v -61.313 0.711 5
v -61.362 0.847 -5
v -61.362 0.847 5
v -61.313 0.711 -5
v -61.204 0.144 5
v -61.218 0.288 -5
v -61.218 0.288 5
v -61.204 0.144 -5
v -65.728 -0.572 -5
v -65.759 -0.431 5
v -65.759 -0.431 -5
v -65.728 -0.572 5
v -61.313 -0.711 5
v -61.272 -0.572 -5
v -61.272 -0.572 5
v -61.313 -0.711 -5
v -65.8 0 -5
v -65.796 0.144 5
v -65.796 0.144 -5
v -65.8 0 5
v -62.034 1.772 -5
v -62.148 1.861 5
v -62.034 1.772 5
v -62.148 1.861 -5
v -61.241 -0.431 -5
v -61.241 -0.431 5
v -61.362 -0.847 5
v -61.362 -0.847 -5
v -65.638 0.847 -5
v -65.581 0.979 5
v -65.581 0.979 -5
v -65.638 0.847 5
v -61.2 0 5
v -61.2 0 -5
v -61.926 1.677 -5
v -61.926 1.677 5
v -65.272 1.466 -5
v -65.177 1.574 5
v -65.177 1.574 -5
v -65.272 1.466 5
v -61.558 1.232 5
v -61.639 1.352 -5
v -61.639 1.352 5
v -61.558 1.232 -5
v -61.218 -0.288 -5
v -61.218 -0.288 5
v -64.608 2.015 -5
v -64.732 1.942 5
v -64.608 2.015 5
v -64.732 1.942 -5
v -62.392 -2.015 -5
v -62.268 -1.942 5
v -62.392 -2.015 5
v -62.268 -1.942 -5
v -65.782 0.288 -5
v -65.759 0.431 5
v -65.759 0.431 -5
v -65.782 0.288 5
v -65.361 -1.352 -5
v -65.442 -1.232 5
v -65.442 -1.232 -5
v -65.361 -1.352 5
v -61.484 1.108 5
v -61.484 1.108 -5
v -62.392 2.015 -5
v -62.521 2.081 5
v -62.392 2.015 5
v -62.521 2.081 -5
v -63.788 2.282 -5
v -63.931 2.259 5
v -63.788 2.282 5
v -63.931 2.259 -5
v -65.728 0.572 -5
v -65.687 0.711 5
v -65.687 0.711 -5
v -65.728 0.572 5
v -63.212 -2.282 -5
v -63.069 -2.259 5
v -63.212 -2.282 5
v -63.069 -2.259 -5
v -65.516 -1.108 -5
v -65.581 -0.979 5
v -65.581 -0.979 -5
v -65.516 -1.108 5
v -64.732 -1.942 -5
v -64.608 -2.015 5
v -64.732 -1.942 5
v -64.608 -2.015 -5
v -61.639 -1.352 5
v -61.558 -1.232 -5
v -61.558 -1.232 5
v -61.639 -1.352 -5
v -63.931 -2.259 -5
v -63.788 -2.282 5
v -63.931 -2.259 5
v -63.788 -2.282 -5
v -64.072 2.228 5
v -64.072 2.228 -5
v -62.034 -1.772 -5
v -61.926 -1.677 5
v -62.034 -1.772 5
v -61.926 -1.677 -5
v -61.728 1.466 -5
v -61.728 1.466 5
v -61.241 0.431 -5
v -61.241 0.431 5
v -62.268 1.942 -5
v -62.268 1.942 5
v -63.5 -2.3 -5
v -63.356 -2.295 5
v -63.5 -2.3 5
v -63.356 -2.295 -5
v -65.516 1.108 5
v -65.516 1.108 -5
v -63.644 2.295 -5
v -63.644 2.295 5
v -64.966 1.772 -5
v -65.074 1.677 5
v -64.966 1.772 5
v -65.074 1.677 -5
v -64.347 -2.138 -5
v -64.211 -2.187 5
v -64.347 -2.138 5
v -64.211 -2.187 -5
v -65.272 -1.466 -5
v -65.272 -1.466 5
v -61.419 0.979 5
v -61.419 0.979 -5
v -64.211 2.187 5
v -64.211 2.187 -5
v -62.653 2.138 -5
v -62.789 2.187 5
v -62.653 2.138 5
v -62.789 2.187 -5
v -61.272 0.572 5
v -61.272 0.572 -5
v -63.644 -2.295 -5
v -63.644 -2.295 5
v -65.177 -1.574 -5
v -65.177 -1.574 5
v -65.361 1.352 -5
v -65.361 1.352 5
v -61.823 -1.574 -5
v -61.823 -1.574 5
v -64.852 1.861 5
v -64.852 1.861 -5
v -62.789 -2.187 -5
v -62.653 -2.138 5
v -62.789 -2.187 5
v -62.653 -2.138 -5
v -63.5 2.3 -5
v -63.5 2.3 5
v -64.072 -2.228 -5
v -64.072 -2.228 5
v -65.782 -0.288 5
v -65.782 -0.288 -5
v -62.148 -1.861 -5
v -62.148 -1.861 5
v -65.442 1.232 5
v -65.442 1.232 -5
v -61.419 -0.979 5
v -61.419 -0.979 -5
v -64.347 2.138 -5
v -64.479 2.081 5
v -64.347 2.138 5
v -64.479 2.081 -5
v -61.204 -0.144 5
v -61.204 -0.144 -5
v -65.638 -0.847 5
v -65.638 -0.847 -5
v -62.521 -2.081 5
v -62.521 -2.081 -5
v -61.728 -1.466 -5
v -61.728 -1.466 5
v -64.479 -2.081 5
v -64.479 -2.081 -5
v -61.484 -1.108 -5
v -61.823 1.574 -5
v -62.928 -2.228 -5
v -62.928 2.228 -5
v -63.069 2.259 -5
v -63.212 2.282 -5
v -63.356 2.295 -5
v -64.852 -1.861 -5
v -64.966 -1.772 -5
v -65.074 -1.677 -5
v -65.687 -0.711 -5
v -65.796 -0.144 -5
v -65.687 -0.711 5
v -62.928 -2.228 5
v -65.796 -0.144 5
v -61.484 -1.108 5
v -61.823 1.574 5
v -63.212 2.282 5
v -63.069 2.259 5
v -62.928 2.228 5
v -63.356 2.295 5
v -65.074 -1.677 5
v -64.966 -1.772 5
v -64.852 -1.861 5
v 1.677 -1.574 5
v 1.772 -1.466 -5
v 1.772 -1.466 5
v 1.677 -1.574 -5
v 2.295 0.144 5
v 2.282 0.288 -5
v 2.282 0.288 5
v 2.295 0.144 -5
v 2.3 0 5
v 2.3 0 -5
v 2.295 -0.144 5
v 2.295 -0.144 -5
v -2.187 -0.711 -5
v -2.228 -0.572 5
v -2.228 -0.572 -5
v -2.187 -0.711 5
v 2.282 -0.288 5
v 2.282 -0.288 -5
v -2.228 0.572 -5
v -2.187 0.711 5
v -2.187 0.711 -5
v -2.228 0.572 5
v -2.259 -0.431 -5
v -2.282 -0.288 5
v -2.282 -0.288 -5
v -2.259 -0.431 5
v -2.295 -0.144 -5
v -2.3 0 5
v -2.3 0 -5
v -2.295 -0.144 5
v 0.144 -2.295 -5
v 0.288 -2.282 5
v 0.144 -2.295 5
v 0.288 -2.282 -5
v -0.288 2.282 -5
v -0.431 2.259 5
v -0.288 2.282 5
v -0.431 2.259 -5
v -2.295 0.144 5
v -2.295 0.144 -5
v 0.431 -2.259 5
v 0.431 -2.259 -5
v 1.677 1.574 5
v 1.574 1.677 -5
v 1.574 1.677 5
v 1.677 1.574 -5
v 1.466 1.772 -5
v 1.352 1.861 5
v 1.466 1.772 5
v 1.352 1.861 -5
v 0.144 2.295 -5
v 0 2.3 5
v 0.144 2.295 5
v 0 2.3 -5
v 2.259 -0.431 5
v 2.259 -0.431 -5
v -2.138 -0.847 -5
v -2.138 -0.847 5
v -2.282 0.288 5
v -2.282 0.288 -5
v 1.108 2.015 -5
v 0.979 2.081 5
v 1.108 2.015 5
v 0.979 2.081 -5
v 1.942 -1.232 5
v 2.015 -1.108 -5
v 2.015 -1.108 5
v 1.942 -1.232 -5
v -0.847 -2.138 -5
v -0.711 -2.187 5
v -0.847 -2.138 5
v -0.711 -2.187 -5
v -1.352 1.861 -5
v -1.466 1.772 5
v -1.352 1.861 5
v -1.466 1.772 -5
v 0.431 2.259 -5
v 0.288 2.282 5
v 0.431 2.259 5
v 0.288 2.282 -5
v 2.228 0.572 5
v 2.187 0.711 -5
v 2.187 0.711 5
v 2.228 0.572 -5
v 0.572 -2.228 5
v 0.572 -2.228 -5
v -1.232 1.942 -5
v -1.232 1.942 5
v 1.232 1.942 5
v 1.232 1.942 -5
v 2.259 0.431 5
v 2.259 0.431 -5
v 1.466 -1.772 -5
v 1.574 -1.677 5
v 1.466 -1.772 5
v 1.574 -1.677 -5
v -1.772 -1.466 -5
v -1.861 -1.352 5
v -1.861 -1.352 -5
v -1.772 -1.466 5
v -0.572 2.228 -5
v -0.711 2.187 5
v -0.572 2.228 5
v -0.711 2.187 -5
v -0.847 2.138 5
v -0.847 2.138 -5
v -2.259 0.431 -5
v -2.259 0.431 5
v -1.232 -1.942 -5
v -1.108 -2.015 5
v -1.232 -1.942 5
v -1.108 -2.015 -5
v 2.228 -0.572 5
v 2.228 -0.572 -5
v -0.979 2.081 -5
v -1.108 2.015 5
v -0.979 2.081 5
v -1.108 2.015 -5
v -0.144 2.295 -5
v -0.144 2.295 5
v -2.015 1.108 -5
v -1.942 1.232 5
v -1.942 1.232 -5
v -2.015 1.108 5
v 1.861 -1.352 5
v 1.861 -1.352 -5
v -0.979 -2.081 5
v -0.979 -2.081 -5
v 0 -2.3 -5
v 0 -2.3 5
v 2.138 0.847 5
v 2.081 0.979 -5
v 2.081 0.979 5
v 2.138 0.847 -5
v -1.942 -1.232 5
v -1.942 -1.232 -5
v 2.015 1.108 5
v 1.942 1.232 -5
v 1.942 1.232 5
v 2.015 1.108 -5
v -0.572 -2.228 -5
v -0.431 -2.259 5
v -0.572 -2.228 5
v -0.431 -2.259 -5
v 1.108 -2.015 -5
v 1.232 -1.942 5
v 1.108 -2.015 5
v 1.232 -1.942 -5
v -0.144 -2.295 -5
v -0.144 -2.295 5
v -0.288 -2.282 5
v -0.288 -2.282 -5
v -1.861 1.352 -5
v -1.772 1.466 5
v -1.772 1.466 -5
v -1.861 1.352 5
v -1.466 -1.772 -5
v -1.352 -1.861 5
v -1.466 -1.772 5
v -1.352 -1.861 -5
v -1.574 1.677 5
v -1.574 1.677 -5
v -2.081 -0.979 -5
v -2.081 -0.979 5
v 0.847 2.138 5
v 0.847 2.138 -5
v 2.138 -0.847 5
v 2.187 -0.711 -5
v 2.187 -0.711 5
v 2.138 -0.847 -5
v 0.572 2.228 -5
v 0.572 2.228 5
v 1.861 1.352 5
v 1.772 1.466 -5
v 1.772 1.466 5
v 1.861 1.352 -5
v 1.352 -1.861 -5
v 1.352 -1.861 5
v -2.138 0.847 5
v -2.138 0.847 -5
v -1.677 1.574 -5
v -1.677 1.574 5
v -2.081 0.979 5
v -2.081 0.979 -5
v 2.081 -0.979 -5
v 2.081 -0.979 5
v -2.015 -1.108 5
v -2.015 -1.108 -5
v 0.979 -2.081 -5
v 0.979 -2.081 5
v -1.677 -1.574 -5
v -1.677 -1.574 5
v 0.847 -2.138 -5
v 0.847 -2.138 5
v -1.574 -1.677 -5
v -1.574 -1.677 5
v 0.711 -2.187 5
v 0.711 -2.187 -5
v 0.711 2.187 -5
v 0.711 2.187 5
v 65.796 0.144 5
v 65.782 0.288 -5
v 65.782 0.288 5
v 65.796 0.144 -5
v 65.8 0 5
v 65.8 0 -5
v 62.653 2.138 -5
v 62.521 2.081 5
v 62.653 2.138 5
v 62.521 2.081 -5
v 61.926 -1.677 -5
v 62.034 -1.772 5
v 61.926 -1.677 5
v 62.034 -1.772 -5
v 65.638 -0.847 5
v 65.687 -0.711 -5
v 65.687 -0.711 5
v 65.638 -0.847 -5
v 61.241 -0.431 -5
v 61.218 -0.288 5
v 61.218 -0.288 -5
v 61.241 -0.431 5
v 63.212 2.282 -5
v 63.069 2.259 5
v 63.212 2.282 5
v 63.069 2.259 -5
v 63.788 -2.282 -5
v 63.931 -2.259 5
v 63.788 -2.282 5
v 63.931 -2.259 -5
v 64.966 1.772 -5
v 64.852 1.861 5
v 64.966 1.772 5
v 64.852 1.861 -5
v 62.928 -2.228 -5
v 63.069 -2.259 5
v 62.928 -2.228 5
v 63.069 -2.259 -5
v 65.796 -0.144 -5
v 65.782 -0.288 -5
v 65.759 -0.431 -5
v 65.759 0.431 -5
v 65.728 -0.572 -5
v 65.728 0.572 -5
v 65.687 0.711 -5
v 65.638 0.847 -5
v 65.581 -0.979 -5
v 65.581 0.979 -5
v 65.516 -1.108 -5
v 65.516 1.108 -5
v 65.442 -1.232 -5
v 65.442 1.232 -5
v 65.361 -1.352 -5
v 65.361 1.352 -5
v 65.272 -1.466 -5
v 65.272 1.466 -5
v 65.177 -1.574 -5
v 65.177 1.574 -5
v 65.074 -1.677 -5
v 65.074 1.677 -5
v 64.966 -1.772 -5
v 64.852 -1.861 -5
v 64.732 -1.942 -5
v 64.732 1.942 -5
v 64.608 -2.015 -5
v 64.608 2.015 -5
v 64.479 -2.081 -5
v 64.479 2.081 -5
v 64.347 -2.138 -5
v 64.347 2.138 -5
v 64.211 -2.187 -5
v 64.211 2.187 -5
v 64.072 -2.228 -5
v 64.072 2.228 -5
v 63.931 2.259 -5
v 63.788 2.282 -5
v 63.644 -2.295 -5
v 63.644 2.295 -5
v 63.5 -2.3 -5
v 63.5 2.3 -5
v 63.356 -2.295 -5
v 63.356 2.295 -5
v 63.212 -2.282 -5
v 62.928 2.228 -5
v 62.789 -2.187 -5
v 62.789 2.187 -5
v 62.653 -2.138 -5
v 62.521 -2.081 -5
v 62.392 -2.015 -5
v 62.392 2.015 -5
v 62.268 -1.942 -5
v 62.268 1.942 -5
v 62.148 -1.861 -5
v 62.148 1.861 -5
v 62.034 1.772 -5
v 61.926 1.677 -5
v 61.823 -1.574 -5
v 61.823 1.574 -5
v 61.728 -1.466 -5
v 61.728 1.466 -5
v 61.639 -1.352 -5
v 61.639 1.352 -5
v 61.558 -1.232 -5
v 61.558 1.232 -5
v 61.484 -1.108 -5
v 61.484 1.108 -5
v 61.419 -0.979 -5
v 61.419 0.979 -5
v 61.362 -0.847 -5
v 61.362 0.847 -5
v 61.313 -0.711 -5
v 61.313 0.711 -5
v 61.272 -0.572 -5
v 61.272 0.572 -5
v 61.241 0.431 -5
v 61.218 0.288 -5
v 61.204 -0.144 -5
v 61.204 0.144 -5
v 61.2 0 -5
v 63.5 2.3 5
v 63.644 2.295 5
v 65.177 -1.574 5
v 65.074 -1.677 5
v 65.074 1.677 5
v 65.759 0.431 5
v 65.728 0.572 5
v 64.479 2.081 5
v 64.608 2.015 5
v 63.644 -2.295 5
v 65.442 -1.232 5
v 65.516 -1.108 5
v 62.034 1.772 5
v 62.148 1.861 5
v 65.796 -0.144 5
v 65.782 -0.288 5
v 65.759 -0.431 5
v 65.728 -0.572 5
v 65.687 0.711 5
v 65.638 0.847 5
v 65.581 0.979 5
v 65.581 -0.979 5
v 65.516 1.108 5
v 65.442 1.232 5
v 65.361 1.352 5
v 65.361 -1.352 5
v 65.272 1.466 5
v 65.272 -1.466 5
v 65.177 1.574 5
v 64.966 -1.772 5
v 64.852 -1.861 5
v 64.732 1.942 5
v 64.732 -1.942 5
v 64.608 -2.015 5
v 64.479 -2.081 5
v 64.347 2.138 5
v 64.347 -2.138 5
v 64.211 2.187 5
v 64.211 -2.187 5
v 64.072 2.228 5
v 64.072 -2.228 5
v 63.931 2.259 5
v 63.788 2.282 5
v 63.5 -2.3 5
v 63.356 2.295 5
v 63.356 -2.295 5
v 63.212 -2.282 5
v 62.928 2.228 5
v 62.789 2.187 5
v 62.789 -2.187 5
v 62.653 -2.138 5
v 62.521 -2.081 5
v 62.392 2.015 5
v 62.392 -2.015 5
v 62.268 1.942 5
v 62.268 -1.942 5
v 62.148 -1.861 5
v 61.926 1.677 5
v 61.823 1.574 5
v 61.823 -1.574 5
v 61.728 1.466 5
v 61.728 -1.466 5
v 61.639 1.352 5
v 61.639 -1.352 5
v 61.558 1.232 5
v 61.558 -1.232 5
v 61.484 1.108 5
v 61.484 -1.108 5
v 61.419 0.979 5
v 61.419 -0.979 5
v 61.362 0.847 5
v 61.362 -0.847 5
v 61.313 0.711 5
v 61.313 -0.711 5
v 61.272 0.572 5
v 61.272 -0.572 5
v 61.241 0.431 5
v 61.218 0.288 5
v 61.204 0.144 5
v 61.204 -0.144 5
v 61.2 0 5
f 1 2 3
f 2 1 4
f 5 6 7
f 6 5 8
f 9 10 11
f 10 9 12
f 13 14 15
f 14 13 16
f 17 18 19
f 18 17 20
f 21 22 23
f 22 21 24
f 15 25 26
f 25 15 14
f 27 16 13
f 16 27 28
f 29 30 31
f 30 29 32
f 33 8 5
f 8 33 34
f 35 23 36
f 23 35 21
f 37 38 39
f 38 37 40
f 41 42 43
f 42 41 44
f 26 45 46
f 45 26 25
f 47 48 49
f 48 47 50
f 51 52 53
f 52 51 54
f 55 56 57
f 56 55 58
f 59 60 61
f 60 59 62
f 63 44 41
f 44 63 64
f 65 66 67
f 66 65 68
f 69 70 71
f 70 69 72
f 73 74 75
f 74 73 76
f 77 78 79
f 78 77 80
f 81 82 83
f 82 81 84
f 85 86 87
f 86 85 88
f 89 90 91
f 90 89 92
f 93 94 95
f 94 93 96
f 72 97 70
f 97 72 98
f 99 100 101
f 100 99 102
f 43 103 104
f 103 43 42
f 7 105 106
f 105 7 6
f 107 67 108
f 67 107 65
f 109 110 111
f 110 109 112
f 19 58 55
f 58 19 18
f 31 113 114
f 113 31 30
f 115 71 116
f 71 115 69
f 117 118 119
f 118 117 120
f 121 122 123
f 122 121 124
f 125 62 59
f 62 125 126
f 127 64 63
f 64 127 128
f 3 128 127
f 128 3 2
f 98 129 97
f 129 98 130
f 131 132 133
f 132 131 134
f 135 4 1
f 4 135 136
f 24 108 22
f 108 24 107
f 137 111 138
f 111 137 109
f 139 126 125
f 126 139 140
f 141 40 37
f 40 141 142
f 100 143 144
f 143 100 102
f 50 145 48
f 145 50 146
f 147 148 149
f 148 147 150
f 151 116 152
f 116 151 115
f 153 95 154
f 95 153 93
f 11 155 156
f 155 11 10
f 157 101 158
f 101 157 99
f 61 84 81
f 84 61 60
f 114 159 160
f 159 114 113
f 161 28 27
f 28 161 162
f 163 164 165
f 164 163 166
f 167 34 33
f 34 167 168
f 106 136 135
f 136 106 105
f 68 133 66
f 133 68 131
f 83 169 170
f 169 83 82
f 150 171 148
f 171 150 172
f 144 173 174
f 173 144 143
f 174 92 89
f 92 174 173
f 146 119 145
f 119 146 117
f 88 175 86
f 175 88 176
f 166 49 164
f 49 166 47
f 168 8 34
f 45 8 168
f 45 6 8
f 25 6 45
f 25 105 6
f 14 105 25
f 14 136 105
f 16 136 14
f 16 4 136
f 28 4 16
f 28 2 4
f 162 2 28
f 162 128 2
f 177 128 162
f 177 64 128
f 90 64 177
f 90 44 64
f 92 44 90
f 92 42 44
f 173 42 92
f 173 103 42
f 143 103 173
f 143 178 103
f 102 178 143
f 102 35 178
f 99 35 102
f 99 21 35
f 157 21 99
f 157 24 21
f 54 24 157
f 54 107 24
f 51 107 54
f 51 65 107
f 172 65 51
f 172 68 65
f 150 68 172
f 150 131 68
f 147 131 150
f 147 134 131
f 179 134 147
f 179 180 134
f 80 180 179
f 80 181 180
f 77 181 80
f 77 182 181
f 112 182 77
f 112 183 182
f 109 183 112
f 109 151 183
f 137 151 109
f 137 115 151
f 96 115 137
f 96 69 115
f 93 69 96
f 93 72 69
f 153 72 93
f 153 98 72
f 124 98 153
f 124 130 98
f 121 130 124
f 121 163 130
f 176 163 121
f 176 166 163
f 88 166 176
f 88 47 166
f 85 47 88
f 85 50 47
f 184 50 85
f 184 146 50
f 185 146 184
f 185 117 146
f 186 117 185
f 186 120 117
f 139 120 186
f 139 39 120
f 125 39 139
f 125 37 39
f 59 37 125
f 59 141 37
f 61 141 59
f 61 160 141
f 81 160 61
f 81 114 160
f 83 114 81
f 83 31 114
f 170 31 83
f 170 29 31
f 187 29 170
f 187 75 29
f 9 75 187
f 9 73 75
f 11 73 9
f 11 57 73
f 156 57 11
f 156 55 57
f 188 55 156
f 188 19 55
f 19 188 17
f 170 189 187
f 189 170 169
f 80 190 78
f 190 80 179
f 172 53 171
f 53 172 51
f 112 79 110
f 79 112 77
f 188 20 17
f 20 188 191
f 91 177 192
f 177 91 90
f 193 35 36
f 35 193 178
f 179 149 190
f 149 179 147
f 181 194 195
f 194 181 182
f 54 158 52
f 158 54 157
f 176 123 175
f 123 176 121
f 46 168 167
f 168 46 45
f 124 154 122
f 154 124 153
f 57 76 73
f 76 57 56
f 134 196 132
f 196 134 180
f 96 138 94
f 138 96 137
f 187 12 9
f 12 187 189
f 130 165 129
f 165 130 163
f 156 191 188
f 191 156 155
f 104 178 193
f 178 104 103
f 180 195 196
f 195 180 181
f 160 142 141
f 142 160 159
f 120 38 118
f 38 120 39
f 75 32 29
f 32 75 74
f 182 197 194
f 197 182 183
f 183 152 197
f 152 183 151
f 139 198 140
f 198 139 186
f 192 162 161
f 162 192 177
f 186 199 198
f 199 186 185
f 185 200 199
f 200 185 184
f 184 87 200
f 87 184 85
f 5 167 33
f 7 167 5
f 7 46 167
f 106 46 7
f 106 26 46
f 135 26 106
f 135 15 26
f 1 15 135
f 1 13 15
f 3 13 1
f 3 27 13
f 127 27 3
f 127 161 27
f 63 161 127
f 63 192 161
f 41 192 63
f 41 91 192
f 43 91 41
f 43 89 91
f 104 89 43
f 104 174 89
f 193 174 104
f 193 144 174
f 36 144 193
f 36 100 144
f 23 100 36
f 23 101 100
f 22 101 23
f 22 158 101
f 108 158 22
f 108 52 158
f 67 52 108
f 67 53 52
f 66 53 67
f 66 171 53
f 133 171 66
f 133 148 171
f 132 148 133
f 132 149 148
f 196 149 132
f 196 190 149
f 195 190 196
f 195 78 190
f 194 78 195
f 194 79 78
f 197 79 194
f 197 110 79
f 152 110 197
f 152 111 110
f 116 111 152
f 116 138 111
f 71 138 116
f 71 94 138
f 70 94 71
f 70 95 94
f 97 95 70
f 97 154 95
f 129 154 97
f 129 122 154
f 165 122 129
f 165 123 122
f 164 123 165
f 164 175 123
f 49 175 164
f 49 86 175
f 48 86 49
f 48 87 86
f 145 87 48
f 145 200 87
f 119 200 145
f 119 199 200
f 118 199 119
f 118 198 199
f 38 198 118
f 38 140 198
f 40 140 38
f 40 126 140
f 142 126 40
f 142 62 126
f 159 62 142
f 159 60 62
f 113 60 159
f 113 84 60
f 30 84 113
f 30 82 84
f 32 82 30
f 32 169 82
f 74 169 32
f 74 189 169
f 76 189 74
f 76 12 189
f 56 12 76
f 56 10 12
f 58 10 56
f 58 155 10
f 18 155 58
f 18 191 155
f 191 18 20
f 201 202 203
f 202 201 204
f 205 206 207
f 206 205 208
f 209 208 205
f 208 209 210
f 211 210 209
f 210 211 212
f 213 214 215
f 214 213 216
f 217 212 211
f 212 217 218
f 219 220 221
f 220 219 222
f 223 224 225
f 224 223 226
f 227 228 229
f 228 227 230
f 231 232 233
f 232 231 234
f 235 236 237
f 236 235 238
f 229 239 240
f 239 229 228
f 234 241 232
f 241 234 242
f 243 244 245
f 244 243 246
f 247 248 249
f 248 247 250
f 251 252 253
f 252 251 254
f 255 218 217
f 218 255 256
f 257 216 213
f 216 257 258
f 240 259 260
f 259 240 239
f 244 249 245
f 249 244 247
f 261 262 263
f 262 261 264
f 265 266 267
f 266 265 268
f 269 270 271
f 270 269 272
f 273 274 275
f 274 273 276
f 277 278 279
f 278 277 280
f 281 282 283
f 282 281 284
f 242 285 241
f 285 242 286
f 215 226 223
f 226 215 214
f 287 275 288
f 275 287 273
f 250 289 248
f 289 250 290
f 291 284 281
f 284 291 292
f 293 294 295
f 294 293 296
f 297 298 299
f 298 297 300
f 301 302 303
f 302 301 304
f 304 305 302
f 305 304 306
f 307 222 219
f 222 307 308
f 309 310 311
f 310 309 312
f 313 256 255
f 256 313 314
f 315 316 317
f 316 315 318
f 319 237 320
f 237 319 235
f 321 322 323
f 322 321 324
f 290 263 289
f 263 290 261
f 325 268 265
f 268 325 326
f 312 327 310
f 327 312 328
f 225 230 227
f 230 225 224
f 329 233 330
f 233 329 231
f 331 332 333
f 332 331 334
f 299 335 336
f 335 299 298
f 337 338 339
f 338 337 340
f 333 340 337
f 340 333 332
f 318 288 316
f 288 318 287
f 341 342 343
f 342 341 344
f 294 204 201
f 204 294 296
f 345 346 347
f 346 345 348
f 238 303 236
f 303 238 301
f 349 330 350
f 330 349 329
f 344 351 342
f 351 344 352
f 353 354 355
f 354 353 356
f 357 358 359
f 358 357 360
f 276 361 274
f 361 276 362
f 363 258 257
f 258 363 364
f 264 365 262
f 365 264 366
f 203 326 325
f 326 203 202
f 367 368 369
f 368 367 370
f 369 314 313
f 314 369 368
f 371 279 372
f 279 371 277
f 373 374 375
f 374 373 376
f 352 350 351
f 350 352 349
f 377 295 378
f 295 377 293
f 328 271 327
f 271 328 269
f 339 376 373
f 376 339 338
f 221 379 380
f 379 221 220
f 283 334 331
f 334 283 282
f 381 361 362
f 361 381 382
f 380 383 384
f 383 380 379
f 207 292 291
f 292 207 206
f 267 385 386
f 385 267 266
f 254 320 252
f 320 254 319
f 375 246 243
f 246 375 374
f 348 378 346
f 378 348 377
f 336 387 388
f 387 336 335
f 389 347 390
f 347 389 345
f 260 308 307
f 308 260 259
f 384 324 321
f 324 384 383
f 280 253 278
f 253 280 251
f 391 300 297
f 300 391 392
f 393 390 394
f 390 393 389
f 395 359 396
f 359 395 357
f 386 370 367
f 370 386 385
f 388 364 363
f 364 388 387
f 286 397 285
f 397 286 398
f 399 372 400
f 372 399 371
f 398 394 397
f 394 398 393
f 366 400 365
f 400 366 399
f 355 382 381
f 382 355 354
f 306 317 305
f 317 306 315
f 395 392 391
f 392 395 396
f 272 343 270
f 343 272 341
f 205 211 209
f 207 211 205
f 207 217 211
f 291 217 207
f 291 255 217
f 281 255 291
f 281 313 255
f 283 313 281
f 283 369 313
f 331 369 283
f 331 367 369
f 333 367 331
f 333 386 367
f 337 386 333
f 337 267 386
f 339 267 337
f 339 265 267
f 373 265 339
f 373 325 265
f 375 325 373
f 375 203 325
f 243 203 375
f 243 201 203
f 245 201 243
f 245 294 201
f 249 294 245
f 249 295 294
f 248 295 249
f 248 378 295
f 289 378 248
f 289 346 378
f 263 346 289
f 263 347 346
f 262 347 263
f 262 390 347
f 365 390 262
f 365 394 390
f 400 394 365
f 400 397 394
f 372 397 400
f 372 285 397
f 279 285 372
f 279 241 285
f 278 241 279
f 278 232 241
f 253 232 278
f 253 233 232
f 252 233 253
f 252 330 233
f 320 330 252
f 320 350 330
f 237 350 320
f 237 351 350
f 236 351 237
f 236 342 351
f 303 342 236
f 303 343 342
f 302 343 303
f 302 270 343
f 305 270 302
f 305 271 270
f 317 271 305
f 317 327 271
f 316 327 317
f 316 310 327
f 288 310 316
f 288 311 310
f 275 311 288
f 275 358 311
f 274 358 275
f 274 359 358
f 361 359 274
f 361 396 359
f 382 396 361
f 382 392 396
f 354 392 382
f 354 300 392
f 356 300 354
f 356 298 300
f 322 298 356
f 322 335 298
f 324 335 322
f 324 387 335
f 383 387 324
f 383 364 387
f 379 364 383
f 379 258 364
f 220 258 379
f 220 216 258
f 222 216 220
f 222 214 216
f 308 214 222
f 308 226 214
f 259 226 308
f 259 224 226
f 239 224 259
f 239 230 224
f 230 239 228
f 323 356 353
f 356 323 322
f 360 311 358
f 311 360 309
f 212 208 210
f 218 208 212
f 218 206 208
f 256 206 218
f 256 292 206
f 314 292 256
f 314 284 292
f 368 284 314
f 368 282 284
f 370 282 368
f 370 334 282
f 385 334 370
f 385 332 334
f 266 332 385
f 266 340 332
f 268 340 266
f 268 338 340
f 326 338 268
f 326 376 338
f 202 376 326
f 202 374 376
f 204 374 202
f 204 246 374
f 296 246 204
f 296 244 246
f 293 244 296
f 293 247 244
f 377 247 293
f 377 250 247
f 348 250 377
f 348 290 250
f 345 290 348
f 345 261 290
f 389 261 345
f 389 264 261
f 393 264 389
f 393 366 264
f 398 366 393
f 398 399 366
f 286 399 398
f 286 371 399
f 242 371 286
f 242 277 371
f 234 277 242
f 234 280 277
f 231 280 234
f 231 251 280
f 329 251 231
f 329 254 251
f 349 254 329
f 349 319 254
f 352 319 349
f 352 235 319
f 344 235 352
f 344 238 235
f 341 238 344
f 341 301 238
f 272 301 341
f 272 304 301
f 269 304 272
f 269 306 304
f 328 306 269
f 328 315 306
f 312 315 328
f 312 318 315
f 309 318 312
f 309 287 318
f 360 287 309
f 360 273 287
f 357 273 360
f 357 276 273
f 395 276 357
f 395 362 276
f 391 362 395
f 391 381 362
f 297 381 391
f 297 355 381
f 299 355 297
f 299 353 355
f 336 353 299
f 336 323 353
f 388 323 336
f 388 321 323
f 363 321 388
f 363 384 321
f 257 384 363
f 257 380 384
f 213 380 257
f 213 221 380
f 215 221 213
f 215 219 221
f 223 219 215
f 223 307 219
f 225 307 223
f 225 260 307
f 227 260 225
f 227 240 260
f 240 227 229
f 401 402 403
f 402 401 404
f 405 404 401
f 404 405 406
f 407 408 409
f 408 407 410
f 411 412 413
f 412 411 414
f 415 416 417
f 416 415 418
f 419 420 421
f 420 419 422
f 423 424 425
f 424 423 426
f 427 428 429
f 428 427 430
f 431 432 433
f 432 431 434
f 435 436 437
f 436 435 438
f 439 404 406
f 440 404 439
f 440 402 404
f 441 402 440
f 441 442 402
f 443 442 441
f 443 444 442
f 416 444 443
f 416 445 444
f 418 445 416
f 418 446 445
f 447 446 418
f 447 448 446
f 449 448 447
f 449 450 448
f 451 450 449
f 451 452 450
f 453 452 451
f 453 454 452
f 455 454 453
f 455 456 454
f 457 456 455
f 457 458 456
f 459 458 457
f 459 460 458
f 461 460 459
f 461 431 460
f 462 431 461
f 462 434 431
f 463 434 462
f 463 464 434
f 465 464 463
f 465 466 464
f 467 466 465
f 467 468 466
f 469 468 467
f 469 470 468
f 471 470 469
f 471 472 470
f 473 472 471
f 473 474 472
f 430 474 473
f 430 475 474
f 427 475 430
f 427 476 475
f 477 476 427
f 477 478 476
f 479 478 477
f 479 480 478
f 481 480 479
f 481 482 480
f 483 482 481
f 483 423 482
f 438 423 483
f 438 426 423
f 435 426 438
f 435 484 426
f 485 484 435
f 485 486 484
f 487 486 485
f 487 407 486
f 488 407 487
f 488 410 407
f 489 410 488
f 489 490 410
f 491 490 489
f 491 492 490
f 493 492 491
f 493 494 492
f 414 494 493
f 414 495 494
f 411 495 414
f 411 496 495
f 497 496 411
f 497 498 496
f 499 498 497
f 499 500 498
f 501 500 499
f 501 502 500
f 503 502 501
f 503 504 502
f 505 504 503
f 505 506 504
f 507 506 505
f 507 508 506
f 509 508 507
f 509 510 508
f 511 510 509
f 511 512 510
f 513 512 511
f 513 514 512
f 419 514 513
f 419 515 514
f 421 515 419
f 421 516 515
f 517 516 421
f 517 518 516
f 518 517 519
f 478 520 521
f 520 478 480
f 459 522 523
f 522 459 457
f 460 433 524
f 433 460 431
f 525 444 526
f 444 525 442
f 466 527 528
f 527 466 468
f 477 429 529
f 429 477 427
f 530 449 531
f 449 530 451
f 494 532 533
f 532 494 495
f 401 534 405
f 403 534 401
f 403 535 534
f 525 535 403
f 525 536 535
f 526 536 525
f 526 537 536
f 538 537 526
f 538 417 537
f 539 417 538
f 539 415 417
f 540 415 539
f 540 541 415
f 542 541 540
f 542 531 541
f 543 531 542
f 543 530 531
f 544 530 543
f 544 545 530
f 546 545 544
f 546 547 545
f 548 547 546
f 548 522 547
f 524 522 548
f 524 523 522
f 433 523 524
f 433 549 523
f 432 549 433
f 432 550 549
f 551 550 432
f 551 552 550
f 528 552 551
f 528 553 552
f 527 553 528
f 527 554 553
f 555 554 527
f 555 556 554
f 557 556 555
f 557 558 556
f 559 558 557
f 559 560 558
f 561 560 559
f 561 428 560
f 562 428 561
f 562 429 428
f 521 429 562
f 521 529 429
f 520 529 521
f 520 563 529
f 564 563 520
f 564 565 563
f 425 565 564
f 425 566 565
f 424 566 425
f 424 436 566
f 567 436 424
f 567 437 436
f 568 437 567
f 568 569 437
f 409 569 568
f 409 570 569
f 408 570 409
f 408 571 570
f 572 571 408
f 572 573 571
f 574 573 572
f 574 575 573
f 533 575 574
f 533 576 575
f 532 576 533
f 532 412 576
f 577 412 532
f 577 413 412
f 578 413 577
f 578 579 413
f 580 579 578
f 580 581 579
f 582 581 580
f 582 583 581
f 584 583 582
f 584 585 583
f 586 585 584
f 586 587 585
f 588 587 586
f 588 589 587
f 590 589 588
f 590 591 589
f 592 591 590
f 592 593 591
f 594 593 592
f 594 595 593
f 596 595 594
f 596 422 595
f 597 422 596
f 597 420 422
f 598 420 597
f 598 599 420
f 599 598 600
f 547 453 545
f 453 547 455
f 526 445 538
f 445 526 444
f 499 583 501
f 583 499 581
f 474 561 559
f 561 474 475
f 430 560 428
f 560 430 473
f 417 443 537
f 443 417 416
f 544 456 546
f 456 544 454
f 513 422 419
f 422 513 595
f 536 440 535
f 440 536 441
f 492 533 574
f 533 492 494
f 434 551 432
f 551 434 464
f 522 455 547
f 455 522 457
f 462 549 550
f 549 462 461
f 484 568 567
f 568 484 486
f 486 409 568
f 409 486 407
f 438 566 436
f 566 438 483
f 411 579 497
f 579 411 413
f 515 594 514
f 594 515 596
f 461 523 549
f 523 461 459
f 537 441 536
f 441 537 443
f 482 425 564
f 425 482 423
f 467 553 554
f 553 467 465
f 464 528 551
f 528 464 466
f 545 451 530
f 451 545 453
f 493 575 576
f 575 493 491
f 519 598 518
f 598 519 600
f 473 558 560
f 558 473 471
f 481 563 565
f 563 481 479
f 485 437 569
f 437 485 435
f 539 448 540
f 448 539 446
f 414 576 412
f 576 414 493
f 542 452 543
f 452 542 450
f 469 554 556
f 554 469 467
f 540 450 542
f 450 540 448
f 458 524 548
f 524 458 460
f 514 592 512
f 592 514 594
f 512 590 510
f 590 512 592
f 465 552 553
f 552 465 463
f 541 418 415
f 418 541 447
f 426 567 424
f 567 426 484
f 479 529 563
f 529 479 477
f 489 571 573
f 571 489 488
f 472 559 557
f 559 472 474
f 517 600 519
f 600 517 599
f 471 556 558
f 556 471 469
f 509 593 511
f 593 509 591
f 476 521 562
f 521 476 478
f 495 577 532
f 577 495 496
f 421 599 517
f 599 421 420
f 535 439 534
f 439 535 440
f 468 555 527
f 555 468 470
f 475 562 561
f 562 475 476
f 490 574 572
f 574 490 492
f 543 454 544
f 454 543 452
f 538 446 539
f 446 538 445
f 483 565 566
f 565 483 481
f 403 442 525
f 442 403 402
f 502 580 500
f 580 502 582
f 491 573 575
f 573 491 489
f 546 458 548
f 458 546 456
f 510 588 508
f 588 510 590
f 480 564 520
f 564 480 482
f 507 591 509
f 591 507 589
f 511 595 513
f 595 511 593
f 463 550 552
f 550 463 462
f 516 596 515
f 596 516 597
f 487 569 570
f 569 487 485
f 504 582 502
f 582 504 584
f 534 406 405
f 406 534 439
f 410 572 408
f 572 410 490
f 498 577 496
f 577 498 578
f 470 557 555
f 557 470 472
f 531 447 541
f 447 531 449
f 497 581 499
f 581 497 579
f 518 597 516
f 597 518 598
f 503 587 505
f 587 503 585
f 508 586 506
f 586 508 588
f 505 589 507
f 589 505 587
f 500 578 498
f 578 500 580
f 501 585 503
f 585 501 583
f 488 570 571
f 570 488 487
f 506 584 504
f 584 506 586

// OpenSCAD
$fn = 100;
union()
{
  translate(v = [-63.5, 0, 0])
  {
    cylinder(h = 10, r = 2.3, center = true);
  }
  cylinder(h = 10, r = 2.3, center = true);
  translate(v = [63.5, 0, 0])
  {
    cylinder(h = 10, r = 2.3, center = true);
  }
}
